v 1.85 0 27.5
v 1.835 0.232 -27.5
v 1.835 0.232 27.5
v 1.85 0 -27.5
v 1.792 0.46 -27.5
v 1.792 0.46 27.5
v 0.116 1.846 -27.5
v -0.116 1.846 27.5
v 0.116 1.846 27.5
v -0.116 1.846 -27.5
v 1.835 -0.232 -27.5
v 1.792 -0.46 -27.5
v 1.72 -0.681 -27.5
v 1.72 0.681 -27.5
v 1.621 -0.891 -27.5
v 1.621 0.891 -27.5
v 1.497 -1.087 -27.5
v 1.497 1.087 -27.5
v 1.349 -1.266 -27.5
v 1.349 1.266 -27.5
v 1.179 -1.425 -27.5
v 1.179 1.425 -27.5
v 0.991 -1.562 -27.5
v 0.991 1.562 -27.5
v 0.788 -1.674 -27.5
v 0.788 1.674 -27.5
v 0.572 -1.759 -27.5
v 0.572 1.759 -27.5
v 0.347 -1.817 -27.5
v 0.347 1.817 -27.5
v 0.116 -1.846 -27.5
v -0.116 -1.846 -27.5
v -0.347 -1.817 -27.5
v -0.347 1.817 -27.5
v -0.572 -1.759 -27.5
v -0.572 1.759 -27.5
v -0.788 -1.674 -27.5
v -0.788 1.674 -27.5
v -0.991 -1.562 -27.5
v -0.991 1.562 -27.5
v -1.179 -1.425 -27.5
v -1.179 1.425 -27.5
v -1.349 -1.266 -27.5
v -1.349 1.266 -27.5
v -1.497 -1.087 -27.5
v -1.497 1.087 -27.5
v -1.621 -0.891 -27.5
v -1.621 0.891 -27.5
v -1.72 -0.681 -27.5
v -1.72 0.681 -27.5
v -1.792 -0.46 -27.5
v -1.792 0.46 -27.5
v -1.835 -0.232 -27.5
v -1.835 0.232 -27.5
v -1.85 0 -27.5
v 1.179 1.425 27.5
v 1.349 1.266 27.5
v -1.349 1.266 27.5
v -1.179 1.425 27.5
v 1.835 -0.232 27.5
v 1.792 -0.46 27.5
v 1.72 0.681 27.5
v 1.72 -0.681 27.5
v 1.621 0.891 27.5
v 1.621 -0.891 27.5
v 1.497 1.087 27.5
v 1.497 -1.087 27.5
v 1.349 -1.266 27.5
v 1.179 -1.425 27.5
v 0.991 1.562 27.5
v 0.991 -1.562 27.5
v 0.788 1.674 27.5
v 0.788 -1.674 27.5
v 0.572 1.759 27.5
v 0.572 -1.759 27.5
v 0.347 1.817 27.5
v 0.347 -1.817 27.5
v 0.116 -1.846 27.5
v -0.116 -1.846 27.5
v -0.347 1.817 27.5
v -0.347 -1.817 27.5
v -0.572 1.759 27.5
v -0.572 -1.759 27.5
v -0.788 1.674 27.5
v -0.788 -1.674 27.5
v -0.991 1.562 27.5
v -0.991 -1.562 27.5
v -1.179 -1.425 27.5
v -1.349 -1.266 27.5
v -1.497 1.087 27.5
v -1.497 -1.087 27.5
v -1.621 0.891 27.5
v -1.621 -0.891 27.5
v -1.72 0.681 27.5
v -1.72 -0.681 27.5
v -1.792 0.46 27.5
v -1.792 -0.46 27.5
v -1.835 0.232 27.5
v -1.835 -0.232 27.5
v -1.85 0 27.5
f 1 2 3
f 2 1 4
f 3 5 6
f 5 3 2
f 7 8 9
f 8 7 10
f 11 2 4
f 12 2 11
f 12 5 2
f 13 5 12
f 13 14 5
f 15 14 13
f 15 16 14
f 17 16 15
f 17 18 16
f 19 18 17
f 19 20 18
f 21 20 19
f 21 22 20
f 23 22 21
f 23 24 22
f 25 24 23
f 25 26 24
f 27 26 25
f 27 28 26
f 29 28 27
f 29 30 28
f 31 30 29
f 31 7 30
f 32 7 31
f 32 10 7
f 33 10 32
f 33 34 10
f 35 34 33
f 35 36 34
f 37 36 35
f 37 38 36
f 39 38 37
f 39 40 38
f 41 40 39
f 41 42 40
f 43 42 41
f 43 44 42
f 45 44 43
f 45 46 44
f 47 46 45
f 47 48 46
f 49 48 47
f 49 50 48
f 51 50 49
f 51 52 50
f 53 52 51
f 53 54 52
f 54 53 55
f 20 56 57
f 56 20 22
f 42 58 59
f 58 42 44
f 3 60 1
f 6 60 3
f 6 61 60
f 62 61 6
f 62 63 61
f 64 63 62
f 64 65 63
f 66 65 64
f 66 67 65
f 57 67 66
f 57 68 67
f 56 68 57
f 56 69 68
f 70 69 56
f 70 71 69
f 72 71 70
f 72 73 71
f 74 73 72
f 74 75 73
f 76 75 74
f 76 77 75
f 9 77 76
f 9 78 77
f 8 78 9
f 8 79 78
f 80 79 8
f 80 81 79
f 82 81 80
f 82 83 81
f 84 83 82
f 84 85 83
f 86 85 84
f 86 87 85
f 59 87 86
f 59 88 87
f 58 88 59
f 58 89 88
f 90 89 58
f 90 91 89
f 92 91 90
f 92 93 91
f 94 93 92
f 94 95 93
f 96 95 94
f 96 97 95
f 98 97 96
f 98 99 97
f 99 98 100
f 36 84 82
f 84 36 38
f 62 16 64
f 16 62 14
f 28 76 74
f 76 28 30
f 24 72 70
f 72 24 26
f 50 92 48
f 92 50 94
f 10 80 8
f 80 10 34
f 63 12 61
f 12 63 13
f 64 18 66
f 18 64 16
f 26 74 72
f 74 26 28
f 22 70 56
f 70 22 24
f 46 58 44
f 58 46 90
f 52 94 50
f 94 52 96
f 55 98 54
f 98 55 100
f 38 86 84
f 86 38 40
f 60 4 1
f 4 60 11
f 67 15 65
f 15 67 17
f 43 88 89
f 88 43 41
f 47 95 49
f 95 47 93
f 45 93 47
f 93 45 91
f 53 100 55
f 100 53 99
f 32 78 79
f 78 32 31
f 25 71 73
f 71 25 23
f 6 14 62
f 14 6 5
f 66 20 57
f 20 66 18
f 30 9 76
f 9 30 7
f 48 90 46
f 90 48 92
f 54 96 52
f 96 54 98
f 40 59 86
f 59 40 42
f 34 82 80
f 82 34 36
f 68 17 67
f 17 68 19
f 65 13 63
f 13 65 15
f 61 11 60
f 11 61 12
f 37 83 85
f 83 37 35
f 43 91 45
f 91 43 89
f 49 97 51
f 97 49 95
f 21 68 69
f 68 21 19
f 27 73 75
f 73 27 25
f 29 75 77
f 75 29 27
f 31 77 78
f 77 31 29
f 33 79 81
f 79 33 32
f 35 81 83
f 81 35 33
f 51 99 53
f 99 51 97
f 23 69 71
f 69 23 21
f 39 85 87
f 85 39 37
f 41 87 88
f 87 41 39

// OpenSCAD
$fn = 50;


difference() {
	union() {
		translate(v = [0, 0, -27.5000000000]) {
			cylinder(h = 55, r = 1.8500000000);
		}
	}
	union() {
		translate(v = [0, 0, -100.0000000000]) {
			cylinder(h = 200, r = 0);
		}
	}
}
